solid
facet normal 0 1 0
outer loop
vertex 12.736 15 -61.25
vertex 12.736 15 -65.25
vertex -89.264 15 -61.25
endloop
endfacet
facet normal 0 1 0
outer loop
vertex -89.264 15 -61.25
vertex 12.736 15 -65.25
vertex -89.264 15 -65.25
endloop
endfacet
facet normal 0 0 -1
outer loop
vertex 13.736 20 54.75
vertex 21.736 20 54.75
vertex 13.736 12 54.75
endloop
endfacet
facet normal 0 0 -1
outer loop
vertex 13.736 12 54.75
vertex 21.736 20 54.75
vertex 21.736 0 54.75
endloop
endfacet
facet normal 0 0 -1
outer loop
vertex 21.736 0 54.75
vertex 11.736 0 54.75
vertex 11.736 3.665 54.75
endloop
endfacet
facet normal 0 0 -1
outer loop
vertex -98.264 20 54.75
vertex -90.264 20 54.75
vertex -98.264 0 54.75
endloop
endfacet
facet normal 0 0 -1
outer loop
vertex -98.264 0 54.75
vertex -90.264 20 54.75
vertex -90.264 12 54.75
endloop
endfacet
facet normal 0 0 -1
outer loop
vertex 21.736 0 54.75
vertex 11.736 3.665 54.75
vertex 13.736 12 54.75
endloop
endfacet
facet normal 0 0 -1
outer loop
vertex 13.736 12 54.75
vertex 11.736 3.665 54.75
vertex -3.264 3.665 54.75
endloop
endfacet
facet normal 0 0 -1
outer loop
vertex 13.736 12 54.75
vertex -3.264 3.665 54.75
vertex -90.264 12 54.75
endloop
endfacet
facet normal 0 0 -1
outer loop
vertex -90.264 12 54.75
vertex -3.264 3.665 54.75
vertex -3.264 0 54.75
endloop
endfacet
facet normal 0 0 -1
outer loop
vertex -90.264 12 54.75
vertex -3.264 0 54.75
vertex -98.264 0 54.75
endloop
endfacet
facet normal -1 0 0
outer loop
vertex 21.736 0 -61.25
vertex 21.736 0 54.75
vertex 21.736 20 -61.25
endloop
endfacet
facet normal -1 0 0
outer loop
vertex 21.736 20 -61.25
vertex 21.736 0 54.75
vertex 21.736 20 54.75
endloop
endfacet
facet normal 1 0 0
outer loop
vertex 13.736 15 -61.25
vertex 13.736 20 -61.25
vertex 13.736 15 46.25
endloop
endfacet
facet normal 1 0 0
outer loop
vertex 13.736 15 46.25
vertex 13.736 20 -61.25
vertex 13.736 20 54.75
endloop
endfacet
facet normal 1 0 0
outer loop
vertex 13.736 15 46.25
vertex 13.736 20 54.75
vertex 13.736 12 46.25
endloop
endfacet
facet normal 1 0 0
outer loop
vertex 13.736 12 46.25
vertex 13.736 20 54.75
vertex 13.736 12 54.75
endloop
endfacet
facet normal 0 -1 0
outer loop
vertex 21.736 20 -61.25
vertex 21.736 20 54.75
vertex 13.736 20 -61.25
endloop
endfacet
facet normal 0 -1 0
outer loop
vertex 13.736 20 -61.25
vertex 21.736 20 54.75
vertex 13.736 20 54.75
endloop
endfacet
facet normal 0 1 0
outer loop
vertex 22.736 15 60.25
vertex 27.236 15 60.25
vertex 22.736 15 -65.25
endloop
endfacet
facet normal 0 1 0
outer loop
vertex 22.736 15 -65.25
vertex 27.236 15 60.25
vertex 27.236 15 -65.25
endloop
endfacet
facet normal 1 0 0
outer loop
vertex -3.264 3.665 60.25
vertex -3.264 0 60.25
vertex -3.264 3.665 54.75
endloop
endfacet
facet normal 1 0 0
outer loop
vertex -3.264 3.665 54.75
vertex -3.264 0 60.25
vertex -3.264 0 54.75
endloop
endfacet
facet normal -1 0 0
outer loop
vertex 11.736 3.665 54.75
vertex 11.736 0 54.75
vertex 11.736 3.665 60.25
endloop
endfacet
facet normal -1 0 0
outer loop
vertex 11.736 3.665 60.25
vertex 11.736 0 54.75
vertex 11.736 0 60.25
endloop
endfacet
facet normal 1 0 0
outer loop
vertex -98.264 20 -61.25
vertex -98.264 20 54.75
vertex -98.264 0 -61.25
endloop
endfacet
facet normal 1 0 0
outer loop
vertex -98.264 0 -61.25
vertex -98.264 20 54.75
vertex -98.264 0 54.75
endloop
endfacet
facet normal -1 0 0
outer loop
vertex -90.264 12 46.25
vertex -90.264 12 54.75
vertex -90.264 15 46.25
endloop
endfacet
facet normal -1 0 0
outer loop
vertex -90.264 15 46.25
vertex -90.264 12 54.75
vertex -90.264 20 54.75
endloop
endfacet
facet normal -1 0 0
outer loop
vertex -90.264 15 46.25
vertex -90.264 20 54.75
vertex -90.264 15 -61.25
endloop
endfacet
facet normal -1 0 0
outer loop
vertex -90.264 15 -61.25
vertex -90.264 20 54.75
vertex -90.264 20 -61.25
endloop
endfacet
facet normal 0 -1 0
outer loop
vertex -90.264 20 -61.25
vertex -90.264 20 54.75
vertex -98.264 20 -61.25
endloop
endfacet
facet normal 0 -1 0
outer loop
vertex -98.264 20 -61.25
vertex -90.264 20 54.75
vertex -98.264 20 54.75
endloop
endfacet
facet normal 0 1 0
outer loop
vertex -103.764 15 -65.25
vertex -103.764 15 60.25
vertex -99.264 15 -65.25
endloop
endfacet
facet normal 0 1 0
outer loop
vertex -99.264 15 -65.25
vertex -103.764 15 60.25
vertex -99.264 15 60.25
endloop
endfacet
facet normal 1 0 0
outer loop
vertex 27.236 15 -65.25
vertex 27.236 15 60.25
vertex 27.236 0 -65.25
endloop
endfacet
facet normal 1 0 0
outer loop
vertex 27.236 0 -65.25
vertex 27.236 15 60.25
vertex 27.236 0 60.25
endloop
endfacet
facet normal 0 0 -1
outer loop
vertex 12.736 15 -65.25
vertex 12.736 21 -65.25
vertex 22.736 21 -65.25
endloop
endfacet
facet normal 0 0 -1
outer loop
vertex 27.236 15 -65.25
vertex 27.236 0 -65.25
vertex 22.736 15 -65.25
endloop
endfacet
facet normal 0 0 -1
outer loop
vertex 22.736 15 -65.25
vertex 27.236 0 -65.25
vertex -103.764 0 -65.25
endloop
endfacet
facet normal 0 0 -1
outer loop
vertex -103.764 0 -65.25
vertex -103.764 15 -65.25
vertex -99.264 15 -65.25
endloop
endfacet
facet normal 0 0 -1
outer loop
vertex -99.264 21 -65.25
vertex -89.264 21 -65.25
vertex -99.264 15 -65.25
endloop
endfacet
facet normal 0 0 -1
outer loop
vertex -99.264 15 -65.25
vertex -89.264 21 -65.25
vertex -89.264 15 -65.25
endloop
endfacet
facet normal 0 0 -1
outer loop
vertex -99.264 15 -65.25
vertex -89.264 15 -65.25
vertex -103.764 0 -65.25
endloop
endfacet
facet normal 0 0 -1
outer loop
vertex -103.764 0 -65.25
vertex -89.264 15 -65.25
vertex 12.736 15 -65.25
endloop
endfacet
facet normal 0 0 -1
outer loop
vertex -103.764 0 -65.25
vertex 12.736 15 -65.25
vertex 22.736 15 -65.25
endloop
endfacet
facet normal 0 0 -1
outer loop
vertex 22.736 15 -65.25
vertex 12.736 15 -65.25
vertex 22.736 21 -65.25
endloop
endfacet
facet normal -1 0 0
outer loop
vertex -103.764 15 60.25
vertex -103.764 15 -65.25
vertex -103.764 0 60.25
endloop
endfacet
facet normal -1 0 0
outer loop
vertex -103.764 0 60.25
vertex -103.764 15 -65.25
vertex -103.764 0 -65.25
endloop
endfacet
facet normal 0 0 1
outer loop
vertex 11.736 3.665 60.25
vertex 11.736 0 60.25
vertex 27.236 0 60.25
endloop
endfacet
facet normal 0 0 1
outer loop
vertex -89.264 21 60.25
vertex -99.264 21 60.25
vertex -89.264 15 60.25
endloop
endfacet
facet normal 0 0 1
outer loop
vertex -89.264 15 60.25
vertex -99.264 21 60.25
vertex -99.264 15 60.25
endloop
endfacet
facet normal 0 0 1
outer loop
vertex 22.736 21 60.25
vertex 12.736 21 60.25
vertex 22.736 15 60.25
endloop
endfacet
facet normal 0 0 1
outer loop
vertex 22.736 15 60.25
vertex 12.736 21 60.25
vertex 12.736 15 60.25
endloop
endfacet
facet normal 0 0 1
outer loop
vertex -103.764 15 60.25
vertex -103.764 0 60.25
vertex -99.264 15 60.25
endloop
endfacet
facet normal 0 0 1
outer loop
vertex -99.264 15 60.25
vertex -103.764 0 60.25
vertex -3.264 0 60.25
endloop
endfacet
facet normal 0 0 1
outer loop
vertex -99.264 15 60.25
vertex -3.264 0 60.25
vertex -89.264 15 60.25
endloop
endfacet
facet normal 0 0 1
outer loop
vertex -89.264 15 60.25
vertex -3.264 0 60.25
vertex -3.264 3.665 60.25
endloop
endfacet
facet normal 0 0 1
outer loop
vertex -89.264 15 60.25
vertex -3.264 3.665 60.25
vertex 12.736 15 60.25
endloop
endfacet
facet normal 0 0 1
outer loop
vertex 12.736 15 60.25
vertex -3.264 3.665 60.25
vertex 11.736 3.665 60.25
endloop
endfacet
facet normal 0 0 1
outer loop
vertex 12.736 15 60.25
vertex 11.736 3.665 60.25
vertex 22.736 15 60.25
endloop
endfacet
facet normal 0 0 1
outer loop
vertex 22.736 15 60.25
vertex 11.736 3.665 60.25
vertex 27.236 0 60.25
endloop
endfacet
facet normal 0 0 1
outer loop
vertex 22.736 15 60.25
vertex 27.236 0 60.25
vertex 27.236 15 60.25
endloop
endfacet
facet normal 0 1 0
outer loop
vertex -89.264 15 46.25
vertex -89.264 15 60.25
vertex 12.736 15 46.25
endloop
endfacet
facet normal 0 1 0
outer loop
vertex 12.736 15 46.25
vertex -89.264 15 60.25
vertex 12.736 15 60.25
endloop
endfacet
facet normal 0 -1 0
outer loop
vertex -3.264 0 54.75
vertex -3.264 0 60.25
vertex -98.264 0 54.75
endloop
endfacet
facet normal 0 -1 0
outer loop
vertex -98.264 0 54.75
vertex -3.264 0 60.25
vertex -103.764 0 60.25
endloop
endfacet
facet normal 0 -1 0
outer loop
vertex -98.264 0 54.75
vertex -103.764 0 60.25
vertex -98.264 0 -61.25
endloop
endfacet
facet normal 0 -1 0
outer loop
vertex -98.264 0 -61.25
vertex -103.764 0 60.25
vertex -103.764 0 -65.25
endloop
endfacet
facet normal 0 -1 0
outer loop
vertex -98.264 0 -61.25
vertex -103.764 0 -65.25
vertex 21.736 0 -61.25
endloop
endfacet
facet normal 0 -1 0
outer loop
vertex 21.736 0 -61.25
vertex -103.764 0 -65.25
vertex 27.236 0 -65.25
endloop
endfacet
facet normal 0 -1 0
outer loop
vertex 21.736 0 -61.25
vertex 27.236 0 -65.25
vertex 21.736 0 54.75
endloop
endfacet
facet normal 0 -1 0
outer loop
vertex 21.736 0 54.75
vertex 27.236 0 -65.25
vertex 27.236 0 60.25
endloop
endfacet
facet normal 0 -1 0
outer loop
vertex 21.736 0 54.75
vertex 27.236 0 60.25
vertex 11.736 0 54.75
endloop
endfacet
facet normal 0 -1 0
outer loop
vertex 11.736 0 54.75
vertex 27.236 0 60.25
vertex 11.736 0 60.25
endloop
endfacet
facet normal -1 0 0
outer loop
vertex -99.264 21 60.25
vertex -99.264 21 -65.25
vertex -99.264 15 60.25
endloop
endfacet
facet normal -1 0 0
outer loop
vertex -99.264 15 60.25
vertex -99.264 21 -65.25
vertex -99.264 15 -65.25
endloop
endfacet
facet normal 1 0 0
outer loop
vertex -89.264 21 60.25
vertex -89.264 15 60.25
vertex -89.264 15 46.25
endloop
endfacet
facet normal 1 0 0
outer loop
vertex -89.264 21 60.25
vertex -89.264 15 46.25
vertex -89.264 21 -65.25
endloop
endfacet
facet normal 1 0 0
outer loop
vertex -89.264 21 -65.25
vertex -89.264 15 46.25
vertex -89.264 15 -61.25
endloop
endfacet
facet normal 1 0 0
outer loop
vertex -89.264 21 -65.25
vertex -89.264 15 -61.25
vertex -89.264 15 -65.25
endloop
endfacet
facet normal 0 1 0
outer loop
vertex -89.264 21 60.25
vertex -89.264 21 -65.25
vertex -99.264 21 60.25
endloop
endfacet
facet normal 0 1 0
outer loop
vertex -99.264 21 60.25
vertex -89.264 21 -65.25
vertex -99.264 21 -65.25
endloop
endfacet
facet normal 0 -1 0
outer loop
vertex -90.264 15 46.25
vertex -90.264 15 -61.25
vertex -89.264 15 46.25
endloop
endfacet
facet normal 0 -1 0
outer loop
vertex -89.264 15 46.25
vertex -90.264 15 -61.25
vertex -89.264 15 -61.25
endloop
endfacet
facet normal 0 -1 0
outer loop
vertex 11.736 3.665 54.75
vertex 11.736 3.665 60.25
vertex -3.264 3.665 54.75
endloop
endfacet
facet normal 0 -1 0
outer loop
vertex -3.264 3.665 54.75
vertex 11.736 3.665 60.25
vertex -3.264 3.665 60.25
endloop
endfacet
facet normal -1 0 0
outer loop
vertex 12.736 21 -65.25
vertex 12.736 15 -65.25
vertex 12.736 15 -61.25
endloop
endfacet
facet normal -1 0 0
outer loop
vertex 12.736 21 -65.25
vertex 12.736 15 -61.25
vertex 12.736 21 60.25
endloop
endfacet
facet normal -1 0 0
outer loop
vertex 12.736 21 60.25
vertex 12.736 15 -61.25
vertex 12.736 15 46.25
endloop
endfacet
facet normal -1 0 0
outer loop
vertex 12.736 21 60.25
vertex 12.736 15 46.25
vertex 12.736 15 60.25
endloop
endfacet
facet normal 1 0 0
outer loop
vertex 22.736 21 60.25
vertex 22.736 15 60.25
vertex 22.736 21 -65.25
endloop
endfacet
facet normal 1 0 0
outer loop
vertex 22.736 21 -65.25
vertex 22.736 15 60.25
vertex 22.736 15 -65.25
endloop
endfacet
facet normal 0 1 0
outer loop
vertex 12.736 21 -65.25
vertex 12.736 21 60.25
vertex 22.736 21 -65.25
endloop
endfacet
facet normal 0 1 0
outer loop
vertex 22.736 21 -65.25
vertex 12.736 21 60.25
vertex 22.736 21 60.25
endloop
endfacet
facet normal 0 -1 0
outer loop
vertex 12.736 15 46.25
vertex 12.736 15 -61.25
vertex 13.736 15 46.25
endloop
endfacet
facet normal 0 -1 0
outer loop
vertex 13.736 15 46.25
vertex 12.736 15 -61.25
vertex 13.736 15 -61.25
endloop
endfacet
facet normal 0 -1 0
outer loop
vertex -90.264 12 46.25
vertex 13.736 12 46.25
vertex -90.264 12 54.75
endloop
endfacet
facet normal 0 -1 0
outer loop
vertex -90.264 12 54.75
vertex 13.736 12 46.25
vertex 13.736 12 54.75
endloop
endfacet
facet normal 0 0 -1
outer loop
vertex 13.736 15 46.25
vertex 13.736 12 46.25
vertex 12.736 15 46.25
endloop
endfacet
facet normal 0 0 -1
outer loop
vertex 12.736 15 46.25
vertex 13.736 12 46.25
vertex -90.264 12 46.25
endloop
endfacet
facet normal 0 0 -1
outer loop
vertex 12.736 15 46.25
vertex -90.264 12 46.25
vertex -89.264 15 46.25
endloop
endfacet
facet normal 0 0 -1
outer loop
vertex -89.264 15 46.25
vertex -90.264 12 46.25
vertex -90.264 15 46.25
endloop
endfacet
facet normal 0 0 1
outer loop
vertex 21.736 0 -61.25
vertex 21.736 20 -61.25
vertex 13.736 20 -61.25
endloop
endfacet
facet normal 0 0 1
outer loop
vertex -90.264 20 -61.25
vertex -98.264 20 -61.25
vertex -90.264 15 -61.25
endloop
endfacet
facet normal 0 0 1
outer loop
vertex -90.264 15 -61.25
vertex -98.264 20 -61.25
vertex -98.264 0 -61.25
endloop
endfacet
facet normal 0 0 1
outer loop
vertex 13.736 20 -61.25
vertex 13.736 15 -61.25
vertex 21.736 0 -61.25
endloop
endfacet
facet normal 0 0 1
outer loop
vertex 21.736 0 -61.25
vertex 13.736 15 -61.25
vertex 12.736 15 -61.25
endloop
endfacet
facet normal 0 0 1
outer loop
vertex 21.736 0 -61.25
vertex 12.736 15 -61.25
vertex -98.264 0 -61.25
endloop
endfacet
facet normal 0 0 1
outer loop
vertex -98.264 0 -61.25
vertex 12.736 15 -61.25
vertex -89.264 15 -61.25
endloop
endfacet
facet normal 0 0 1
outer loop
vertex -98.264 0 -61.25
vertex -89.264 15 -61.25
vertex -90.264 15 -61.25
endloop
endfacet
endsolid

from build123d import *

# Parameters (mm, degrees)
BOSS_EXTRUDE1_DEPTH  = 15
SKETCH8_W            = 10
SKETCH8_H            = 5.5
BOSS_EXTRUDE2_DEPTH  = 6
BOSS_EXTRUDE3_DEPTH  = 120
SKETCH10_W           = 8
SKETCH10_H           = 5.5
BOSS_EXTRUDE4_DEPTH  = 5
SKETCH11_W           = 5.5
SKETCH11_H           = 11.334625819
BOSS_EXTRUDE5_DEPTH  = 15
SKETCH12_W           = 10
SKETCH12_H           = 5.5
BOSS_EXTRUDE6_DEPTH  = 6
BOSS_EXTRUDE7_DEPTH  = 120
SKETCH14_W           = 9
SKETCH14_H           = 5.5
BOSS_EXTRUDE8_DEPTH  = 6
SKETCH15_W           = 104
SKETCH15_H           = 3
BOSS_EXTRUDE11_DEPTH = 8.5
CUT_EXTRUDE1_DEPTH   = 1.5


with BuildPart() as part:
    # Sketch2 → Boss-Extrude1 (new body)
    with BuildSketch(Plane(origin=(0, 0, 0), x_dir=(1, 0, 0), z_dir=(0, 1, 0))):
        Polygon((-98.263888889, -54.75), (-98.263888889, 59.75), (21.736111111, 59.75), (21.736111111, -54.75), (11.736111111, -54.75), (11.736111111, -60.25), (27.236111111, -60.25), (27.236111111, 65.25), (-103.763888889, 65.25), (-103.763888889, -60.25), (-3.263888889, -60.25), (-3.263888889, -54.75), align=None)
    extrude(amount=BOSS_EXTRUDE1_DEPTH)

    # Sketch8 → Boss-Extrude2 (add)
    with BuildSketch(Plane(origin=(0, 15, 0), x_dir=(1, 0, 0), z_dir=(0, 1, 0))):
        with Locations((-94.263888889, -57.5)):
            Rectangle(SKETCH8_W, SKETCH8_H)
    extrude(amount=BOSS_EXTRUDE2_DEPTH)

    # Sketch9 → Boss-Extrude3 (add)
    with BuildSketch(Plane(origin=(0, 0, 54.75), x_dir=(-1, 0, 0), z_dir=(0, 0, -1))):
        Polygon((90.263888889, 15), (90.263888889, 16), (90.263888889, 20), (98.263888889, 20), (98.263888889, 16), (98.263888889, 15), (99.263888889, 15), (99.263888889, 21), (89.263888889, 21), (89.263888889, 15), align=None)
    extrude(amount=BOSS_EXTRUDE3_DEPTH)

    # Sketch10 → Boss-Extrude4 (add)
    with BuildSketch(Plane(origin=(0, 15, 0), x_dir=(1, 0, 0), z_dir=(0, 1, 0))):
        with Locations((-94.263888889, 62.5)):
            Rectangle(SKETCH10_W, SKETCH10_H)
    extrude(amount=BOSS_EXTRUDE4_DEPTH)

    # Sketch11 → Boss-Extrude5 (add)
    with BuildSketch(Plane(origin=(-3.263888889, 0, 0), x_dir=(0, 0, -1), z_dir=(1, 0, 0))):
        with Locations((-57.5, 9.332687091)):
            Rectangle(SKETCH11_W, SKETCH11_H)
    extrude(amount=BOSS_EXTRUDE5_DEPTH)

    # Sketch12 → Boss-Extrude6 (add)
    with BuildSketch(Plane(origin=(0, 15, 0), x_dir=(1, 0, 0), z_dir=(0, 1, 0))):
        with Locations((17.736111111, -57.5)):
            Rectangle(SKETCH12_W, SKETCH12_H)
    extrude(amount=BOSS_EXTRUDE6_DEPTH)

    # Sketch13 → Boss-Extrude7 (add)
    with BuildSketch(Plane(origin=(0, 0, 54.75), x_dir=(-1, 0, 0), z_dir=(0, 0, -1))):
        Polygon((-21.736111111, 15), (-21.736111111, 16), (-21.736111111, 20), (-13.736111111, 20), (-13.736111111, 16), (-13.736111111, 15), (-12.736111111, 15), (-12.736111111, 21), (-22.736111111, 21), (-22.736111111, 15), align=None)
    extrude(amount=BOSS_EXTRUDE7_DEPTH)

    # Sketch14 → Boss-Extrude8 (add)
    with BuildSketch(Plane(origin=(0, 15, 0), x_dir=(1, 0, 0), z_dir=(0, 1, 0))):
        with Locations((18.236111111, 62.5)):
            Rectangle(SKETCH14_W, SKETCH14_H)
    extrude(amount=BOSS_EXTRUDE8_DEPTH)

    # Sketch15 → Boss-Extrude11 (add)
    with BuildSketch(Plane(origin=(0, 0, 54.75), x_dir=(-1, 0, 0), z_dir=(0, 0, -1))):
        with Locations((38.263888889, 13.5)):
            Rectangle(SKETCH15_W, SKETCH15_H)
    extrude(amount=BOSS_EXTRUDE11_DEPTH)

    # Sketch17 → Cut-Extrude1 (cut)
    with BuildSketch(Plane.XY.offset(-59.75)):
        Polygon((-98.263888889, 0), (21.736111111, 0), (21.736111111, 20), (13.736111111, 20), (13.736111111, 15), (12.736111111, 15), (-89.263888889, 15), (-90.263888889, 15), (-90.263888889, 20), (-98.263888889, 20), align=None)
    extrude(amount=-CUT_EXTRUDE1_DEPTH, mode=Mode.SUBTRACT)


solid = part.part
